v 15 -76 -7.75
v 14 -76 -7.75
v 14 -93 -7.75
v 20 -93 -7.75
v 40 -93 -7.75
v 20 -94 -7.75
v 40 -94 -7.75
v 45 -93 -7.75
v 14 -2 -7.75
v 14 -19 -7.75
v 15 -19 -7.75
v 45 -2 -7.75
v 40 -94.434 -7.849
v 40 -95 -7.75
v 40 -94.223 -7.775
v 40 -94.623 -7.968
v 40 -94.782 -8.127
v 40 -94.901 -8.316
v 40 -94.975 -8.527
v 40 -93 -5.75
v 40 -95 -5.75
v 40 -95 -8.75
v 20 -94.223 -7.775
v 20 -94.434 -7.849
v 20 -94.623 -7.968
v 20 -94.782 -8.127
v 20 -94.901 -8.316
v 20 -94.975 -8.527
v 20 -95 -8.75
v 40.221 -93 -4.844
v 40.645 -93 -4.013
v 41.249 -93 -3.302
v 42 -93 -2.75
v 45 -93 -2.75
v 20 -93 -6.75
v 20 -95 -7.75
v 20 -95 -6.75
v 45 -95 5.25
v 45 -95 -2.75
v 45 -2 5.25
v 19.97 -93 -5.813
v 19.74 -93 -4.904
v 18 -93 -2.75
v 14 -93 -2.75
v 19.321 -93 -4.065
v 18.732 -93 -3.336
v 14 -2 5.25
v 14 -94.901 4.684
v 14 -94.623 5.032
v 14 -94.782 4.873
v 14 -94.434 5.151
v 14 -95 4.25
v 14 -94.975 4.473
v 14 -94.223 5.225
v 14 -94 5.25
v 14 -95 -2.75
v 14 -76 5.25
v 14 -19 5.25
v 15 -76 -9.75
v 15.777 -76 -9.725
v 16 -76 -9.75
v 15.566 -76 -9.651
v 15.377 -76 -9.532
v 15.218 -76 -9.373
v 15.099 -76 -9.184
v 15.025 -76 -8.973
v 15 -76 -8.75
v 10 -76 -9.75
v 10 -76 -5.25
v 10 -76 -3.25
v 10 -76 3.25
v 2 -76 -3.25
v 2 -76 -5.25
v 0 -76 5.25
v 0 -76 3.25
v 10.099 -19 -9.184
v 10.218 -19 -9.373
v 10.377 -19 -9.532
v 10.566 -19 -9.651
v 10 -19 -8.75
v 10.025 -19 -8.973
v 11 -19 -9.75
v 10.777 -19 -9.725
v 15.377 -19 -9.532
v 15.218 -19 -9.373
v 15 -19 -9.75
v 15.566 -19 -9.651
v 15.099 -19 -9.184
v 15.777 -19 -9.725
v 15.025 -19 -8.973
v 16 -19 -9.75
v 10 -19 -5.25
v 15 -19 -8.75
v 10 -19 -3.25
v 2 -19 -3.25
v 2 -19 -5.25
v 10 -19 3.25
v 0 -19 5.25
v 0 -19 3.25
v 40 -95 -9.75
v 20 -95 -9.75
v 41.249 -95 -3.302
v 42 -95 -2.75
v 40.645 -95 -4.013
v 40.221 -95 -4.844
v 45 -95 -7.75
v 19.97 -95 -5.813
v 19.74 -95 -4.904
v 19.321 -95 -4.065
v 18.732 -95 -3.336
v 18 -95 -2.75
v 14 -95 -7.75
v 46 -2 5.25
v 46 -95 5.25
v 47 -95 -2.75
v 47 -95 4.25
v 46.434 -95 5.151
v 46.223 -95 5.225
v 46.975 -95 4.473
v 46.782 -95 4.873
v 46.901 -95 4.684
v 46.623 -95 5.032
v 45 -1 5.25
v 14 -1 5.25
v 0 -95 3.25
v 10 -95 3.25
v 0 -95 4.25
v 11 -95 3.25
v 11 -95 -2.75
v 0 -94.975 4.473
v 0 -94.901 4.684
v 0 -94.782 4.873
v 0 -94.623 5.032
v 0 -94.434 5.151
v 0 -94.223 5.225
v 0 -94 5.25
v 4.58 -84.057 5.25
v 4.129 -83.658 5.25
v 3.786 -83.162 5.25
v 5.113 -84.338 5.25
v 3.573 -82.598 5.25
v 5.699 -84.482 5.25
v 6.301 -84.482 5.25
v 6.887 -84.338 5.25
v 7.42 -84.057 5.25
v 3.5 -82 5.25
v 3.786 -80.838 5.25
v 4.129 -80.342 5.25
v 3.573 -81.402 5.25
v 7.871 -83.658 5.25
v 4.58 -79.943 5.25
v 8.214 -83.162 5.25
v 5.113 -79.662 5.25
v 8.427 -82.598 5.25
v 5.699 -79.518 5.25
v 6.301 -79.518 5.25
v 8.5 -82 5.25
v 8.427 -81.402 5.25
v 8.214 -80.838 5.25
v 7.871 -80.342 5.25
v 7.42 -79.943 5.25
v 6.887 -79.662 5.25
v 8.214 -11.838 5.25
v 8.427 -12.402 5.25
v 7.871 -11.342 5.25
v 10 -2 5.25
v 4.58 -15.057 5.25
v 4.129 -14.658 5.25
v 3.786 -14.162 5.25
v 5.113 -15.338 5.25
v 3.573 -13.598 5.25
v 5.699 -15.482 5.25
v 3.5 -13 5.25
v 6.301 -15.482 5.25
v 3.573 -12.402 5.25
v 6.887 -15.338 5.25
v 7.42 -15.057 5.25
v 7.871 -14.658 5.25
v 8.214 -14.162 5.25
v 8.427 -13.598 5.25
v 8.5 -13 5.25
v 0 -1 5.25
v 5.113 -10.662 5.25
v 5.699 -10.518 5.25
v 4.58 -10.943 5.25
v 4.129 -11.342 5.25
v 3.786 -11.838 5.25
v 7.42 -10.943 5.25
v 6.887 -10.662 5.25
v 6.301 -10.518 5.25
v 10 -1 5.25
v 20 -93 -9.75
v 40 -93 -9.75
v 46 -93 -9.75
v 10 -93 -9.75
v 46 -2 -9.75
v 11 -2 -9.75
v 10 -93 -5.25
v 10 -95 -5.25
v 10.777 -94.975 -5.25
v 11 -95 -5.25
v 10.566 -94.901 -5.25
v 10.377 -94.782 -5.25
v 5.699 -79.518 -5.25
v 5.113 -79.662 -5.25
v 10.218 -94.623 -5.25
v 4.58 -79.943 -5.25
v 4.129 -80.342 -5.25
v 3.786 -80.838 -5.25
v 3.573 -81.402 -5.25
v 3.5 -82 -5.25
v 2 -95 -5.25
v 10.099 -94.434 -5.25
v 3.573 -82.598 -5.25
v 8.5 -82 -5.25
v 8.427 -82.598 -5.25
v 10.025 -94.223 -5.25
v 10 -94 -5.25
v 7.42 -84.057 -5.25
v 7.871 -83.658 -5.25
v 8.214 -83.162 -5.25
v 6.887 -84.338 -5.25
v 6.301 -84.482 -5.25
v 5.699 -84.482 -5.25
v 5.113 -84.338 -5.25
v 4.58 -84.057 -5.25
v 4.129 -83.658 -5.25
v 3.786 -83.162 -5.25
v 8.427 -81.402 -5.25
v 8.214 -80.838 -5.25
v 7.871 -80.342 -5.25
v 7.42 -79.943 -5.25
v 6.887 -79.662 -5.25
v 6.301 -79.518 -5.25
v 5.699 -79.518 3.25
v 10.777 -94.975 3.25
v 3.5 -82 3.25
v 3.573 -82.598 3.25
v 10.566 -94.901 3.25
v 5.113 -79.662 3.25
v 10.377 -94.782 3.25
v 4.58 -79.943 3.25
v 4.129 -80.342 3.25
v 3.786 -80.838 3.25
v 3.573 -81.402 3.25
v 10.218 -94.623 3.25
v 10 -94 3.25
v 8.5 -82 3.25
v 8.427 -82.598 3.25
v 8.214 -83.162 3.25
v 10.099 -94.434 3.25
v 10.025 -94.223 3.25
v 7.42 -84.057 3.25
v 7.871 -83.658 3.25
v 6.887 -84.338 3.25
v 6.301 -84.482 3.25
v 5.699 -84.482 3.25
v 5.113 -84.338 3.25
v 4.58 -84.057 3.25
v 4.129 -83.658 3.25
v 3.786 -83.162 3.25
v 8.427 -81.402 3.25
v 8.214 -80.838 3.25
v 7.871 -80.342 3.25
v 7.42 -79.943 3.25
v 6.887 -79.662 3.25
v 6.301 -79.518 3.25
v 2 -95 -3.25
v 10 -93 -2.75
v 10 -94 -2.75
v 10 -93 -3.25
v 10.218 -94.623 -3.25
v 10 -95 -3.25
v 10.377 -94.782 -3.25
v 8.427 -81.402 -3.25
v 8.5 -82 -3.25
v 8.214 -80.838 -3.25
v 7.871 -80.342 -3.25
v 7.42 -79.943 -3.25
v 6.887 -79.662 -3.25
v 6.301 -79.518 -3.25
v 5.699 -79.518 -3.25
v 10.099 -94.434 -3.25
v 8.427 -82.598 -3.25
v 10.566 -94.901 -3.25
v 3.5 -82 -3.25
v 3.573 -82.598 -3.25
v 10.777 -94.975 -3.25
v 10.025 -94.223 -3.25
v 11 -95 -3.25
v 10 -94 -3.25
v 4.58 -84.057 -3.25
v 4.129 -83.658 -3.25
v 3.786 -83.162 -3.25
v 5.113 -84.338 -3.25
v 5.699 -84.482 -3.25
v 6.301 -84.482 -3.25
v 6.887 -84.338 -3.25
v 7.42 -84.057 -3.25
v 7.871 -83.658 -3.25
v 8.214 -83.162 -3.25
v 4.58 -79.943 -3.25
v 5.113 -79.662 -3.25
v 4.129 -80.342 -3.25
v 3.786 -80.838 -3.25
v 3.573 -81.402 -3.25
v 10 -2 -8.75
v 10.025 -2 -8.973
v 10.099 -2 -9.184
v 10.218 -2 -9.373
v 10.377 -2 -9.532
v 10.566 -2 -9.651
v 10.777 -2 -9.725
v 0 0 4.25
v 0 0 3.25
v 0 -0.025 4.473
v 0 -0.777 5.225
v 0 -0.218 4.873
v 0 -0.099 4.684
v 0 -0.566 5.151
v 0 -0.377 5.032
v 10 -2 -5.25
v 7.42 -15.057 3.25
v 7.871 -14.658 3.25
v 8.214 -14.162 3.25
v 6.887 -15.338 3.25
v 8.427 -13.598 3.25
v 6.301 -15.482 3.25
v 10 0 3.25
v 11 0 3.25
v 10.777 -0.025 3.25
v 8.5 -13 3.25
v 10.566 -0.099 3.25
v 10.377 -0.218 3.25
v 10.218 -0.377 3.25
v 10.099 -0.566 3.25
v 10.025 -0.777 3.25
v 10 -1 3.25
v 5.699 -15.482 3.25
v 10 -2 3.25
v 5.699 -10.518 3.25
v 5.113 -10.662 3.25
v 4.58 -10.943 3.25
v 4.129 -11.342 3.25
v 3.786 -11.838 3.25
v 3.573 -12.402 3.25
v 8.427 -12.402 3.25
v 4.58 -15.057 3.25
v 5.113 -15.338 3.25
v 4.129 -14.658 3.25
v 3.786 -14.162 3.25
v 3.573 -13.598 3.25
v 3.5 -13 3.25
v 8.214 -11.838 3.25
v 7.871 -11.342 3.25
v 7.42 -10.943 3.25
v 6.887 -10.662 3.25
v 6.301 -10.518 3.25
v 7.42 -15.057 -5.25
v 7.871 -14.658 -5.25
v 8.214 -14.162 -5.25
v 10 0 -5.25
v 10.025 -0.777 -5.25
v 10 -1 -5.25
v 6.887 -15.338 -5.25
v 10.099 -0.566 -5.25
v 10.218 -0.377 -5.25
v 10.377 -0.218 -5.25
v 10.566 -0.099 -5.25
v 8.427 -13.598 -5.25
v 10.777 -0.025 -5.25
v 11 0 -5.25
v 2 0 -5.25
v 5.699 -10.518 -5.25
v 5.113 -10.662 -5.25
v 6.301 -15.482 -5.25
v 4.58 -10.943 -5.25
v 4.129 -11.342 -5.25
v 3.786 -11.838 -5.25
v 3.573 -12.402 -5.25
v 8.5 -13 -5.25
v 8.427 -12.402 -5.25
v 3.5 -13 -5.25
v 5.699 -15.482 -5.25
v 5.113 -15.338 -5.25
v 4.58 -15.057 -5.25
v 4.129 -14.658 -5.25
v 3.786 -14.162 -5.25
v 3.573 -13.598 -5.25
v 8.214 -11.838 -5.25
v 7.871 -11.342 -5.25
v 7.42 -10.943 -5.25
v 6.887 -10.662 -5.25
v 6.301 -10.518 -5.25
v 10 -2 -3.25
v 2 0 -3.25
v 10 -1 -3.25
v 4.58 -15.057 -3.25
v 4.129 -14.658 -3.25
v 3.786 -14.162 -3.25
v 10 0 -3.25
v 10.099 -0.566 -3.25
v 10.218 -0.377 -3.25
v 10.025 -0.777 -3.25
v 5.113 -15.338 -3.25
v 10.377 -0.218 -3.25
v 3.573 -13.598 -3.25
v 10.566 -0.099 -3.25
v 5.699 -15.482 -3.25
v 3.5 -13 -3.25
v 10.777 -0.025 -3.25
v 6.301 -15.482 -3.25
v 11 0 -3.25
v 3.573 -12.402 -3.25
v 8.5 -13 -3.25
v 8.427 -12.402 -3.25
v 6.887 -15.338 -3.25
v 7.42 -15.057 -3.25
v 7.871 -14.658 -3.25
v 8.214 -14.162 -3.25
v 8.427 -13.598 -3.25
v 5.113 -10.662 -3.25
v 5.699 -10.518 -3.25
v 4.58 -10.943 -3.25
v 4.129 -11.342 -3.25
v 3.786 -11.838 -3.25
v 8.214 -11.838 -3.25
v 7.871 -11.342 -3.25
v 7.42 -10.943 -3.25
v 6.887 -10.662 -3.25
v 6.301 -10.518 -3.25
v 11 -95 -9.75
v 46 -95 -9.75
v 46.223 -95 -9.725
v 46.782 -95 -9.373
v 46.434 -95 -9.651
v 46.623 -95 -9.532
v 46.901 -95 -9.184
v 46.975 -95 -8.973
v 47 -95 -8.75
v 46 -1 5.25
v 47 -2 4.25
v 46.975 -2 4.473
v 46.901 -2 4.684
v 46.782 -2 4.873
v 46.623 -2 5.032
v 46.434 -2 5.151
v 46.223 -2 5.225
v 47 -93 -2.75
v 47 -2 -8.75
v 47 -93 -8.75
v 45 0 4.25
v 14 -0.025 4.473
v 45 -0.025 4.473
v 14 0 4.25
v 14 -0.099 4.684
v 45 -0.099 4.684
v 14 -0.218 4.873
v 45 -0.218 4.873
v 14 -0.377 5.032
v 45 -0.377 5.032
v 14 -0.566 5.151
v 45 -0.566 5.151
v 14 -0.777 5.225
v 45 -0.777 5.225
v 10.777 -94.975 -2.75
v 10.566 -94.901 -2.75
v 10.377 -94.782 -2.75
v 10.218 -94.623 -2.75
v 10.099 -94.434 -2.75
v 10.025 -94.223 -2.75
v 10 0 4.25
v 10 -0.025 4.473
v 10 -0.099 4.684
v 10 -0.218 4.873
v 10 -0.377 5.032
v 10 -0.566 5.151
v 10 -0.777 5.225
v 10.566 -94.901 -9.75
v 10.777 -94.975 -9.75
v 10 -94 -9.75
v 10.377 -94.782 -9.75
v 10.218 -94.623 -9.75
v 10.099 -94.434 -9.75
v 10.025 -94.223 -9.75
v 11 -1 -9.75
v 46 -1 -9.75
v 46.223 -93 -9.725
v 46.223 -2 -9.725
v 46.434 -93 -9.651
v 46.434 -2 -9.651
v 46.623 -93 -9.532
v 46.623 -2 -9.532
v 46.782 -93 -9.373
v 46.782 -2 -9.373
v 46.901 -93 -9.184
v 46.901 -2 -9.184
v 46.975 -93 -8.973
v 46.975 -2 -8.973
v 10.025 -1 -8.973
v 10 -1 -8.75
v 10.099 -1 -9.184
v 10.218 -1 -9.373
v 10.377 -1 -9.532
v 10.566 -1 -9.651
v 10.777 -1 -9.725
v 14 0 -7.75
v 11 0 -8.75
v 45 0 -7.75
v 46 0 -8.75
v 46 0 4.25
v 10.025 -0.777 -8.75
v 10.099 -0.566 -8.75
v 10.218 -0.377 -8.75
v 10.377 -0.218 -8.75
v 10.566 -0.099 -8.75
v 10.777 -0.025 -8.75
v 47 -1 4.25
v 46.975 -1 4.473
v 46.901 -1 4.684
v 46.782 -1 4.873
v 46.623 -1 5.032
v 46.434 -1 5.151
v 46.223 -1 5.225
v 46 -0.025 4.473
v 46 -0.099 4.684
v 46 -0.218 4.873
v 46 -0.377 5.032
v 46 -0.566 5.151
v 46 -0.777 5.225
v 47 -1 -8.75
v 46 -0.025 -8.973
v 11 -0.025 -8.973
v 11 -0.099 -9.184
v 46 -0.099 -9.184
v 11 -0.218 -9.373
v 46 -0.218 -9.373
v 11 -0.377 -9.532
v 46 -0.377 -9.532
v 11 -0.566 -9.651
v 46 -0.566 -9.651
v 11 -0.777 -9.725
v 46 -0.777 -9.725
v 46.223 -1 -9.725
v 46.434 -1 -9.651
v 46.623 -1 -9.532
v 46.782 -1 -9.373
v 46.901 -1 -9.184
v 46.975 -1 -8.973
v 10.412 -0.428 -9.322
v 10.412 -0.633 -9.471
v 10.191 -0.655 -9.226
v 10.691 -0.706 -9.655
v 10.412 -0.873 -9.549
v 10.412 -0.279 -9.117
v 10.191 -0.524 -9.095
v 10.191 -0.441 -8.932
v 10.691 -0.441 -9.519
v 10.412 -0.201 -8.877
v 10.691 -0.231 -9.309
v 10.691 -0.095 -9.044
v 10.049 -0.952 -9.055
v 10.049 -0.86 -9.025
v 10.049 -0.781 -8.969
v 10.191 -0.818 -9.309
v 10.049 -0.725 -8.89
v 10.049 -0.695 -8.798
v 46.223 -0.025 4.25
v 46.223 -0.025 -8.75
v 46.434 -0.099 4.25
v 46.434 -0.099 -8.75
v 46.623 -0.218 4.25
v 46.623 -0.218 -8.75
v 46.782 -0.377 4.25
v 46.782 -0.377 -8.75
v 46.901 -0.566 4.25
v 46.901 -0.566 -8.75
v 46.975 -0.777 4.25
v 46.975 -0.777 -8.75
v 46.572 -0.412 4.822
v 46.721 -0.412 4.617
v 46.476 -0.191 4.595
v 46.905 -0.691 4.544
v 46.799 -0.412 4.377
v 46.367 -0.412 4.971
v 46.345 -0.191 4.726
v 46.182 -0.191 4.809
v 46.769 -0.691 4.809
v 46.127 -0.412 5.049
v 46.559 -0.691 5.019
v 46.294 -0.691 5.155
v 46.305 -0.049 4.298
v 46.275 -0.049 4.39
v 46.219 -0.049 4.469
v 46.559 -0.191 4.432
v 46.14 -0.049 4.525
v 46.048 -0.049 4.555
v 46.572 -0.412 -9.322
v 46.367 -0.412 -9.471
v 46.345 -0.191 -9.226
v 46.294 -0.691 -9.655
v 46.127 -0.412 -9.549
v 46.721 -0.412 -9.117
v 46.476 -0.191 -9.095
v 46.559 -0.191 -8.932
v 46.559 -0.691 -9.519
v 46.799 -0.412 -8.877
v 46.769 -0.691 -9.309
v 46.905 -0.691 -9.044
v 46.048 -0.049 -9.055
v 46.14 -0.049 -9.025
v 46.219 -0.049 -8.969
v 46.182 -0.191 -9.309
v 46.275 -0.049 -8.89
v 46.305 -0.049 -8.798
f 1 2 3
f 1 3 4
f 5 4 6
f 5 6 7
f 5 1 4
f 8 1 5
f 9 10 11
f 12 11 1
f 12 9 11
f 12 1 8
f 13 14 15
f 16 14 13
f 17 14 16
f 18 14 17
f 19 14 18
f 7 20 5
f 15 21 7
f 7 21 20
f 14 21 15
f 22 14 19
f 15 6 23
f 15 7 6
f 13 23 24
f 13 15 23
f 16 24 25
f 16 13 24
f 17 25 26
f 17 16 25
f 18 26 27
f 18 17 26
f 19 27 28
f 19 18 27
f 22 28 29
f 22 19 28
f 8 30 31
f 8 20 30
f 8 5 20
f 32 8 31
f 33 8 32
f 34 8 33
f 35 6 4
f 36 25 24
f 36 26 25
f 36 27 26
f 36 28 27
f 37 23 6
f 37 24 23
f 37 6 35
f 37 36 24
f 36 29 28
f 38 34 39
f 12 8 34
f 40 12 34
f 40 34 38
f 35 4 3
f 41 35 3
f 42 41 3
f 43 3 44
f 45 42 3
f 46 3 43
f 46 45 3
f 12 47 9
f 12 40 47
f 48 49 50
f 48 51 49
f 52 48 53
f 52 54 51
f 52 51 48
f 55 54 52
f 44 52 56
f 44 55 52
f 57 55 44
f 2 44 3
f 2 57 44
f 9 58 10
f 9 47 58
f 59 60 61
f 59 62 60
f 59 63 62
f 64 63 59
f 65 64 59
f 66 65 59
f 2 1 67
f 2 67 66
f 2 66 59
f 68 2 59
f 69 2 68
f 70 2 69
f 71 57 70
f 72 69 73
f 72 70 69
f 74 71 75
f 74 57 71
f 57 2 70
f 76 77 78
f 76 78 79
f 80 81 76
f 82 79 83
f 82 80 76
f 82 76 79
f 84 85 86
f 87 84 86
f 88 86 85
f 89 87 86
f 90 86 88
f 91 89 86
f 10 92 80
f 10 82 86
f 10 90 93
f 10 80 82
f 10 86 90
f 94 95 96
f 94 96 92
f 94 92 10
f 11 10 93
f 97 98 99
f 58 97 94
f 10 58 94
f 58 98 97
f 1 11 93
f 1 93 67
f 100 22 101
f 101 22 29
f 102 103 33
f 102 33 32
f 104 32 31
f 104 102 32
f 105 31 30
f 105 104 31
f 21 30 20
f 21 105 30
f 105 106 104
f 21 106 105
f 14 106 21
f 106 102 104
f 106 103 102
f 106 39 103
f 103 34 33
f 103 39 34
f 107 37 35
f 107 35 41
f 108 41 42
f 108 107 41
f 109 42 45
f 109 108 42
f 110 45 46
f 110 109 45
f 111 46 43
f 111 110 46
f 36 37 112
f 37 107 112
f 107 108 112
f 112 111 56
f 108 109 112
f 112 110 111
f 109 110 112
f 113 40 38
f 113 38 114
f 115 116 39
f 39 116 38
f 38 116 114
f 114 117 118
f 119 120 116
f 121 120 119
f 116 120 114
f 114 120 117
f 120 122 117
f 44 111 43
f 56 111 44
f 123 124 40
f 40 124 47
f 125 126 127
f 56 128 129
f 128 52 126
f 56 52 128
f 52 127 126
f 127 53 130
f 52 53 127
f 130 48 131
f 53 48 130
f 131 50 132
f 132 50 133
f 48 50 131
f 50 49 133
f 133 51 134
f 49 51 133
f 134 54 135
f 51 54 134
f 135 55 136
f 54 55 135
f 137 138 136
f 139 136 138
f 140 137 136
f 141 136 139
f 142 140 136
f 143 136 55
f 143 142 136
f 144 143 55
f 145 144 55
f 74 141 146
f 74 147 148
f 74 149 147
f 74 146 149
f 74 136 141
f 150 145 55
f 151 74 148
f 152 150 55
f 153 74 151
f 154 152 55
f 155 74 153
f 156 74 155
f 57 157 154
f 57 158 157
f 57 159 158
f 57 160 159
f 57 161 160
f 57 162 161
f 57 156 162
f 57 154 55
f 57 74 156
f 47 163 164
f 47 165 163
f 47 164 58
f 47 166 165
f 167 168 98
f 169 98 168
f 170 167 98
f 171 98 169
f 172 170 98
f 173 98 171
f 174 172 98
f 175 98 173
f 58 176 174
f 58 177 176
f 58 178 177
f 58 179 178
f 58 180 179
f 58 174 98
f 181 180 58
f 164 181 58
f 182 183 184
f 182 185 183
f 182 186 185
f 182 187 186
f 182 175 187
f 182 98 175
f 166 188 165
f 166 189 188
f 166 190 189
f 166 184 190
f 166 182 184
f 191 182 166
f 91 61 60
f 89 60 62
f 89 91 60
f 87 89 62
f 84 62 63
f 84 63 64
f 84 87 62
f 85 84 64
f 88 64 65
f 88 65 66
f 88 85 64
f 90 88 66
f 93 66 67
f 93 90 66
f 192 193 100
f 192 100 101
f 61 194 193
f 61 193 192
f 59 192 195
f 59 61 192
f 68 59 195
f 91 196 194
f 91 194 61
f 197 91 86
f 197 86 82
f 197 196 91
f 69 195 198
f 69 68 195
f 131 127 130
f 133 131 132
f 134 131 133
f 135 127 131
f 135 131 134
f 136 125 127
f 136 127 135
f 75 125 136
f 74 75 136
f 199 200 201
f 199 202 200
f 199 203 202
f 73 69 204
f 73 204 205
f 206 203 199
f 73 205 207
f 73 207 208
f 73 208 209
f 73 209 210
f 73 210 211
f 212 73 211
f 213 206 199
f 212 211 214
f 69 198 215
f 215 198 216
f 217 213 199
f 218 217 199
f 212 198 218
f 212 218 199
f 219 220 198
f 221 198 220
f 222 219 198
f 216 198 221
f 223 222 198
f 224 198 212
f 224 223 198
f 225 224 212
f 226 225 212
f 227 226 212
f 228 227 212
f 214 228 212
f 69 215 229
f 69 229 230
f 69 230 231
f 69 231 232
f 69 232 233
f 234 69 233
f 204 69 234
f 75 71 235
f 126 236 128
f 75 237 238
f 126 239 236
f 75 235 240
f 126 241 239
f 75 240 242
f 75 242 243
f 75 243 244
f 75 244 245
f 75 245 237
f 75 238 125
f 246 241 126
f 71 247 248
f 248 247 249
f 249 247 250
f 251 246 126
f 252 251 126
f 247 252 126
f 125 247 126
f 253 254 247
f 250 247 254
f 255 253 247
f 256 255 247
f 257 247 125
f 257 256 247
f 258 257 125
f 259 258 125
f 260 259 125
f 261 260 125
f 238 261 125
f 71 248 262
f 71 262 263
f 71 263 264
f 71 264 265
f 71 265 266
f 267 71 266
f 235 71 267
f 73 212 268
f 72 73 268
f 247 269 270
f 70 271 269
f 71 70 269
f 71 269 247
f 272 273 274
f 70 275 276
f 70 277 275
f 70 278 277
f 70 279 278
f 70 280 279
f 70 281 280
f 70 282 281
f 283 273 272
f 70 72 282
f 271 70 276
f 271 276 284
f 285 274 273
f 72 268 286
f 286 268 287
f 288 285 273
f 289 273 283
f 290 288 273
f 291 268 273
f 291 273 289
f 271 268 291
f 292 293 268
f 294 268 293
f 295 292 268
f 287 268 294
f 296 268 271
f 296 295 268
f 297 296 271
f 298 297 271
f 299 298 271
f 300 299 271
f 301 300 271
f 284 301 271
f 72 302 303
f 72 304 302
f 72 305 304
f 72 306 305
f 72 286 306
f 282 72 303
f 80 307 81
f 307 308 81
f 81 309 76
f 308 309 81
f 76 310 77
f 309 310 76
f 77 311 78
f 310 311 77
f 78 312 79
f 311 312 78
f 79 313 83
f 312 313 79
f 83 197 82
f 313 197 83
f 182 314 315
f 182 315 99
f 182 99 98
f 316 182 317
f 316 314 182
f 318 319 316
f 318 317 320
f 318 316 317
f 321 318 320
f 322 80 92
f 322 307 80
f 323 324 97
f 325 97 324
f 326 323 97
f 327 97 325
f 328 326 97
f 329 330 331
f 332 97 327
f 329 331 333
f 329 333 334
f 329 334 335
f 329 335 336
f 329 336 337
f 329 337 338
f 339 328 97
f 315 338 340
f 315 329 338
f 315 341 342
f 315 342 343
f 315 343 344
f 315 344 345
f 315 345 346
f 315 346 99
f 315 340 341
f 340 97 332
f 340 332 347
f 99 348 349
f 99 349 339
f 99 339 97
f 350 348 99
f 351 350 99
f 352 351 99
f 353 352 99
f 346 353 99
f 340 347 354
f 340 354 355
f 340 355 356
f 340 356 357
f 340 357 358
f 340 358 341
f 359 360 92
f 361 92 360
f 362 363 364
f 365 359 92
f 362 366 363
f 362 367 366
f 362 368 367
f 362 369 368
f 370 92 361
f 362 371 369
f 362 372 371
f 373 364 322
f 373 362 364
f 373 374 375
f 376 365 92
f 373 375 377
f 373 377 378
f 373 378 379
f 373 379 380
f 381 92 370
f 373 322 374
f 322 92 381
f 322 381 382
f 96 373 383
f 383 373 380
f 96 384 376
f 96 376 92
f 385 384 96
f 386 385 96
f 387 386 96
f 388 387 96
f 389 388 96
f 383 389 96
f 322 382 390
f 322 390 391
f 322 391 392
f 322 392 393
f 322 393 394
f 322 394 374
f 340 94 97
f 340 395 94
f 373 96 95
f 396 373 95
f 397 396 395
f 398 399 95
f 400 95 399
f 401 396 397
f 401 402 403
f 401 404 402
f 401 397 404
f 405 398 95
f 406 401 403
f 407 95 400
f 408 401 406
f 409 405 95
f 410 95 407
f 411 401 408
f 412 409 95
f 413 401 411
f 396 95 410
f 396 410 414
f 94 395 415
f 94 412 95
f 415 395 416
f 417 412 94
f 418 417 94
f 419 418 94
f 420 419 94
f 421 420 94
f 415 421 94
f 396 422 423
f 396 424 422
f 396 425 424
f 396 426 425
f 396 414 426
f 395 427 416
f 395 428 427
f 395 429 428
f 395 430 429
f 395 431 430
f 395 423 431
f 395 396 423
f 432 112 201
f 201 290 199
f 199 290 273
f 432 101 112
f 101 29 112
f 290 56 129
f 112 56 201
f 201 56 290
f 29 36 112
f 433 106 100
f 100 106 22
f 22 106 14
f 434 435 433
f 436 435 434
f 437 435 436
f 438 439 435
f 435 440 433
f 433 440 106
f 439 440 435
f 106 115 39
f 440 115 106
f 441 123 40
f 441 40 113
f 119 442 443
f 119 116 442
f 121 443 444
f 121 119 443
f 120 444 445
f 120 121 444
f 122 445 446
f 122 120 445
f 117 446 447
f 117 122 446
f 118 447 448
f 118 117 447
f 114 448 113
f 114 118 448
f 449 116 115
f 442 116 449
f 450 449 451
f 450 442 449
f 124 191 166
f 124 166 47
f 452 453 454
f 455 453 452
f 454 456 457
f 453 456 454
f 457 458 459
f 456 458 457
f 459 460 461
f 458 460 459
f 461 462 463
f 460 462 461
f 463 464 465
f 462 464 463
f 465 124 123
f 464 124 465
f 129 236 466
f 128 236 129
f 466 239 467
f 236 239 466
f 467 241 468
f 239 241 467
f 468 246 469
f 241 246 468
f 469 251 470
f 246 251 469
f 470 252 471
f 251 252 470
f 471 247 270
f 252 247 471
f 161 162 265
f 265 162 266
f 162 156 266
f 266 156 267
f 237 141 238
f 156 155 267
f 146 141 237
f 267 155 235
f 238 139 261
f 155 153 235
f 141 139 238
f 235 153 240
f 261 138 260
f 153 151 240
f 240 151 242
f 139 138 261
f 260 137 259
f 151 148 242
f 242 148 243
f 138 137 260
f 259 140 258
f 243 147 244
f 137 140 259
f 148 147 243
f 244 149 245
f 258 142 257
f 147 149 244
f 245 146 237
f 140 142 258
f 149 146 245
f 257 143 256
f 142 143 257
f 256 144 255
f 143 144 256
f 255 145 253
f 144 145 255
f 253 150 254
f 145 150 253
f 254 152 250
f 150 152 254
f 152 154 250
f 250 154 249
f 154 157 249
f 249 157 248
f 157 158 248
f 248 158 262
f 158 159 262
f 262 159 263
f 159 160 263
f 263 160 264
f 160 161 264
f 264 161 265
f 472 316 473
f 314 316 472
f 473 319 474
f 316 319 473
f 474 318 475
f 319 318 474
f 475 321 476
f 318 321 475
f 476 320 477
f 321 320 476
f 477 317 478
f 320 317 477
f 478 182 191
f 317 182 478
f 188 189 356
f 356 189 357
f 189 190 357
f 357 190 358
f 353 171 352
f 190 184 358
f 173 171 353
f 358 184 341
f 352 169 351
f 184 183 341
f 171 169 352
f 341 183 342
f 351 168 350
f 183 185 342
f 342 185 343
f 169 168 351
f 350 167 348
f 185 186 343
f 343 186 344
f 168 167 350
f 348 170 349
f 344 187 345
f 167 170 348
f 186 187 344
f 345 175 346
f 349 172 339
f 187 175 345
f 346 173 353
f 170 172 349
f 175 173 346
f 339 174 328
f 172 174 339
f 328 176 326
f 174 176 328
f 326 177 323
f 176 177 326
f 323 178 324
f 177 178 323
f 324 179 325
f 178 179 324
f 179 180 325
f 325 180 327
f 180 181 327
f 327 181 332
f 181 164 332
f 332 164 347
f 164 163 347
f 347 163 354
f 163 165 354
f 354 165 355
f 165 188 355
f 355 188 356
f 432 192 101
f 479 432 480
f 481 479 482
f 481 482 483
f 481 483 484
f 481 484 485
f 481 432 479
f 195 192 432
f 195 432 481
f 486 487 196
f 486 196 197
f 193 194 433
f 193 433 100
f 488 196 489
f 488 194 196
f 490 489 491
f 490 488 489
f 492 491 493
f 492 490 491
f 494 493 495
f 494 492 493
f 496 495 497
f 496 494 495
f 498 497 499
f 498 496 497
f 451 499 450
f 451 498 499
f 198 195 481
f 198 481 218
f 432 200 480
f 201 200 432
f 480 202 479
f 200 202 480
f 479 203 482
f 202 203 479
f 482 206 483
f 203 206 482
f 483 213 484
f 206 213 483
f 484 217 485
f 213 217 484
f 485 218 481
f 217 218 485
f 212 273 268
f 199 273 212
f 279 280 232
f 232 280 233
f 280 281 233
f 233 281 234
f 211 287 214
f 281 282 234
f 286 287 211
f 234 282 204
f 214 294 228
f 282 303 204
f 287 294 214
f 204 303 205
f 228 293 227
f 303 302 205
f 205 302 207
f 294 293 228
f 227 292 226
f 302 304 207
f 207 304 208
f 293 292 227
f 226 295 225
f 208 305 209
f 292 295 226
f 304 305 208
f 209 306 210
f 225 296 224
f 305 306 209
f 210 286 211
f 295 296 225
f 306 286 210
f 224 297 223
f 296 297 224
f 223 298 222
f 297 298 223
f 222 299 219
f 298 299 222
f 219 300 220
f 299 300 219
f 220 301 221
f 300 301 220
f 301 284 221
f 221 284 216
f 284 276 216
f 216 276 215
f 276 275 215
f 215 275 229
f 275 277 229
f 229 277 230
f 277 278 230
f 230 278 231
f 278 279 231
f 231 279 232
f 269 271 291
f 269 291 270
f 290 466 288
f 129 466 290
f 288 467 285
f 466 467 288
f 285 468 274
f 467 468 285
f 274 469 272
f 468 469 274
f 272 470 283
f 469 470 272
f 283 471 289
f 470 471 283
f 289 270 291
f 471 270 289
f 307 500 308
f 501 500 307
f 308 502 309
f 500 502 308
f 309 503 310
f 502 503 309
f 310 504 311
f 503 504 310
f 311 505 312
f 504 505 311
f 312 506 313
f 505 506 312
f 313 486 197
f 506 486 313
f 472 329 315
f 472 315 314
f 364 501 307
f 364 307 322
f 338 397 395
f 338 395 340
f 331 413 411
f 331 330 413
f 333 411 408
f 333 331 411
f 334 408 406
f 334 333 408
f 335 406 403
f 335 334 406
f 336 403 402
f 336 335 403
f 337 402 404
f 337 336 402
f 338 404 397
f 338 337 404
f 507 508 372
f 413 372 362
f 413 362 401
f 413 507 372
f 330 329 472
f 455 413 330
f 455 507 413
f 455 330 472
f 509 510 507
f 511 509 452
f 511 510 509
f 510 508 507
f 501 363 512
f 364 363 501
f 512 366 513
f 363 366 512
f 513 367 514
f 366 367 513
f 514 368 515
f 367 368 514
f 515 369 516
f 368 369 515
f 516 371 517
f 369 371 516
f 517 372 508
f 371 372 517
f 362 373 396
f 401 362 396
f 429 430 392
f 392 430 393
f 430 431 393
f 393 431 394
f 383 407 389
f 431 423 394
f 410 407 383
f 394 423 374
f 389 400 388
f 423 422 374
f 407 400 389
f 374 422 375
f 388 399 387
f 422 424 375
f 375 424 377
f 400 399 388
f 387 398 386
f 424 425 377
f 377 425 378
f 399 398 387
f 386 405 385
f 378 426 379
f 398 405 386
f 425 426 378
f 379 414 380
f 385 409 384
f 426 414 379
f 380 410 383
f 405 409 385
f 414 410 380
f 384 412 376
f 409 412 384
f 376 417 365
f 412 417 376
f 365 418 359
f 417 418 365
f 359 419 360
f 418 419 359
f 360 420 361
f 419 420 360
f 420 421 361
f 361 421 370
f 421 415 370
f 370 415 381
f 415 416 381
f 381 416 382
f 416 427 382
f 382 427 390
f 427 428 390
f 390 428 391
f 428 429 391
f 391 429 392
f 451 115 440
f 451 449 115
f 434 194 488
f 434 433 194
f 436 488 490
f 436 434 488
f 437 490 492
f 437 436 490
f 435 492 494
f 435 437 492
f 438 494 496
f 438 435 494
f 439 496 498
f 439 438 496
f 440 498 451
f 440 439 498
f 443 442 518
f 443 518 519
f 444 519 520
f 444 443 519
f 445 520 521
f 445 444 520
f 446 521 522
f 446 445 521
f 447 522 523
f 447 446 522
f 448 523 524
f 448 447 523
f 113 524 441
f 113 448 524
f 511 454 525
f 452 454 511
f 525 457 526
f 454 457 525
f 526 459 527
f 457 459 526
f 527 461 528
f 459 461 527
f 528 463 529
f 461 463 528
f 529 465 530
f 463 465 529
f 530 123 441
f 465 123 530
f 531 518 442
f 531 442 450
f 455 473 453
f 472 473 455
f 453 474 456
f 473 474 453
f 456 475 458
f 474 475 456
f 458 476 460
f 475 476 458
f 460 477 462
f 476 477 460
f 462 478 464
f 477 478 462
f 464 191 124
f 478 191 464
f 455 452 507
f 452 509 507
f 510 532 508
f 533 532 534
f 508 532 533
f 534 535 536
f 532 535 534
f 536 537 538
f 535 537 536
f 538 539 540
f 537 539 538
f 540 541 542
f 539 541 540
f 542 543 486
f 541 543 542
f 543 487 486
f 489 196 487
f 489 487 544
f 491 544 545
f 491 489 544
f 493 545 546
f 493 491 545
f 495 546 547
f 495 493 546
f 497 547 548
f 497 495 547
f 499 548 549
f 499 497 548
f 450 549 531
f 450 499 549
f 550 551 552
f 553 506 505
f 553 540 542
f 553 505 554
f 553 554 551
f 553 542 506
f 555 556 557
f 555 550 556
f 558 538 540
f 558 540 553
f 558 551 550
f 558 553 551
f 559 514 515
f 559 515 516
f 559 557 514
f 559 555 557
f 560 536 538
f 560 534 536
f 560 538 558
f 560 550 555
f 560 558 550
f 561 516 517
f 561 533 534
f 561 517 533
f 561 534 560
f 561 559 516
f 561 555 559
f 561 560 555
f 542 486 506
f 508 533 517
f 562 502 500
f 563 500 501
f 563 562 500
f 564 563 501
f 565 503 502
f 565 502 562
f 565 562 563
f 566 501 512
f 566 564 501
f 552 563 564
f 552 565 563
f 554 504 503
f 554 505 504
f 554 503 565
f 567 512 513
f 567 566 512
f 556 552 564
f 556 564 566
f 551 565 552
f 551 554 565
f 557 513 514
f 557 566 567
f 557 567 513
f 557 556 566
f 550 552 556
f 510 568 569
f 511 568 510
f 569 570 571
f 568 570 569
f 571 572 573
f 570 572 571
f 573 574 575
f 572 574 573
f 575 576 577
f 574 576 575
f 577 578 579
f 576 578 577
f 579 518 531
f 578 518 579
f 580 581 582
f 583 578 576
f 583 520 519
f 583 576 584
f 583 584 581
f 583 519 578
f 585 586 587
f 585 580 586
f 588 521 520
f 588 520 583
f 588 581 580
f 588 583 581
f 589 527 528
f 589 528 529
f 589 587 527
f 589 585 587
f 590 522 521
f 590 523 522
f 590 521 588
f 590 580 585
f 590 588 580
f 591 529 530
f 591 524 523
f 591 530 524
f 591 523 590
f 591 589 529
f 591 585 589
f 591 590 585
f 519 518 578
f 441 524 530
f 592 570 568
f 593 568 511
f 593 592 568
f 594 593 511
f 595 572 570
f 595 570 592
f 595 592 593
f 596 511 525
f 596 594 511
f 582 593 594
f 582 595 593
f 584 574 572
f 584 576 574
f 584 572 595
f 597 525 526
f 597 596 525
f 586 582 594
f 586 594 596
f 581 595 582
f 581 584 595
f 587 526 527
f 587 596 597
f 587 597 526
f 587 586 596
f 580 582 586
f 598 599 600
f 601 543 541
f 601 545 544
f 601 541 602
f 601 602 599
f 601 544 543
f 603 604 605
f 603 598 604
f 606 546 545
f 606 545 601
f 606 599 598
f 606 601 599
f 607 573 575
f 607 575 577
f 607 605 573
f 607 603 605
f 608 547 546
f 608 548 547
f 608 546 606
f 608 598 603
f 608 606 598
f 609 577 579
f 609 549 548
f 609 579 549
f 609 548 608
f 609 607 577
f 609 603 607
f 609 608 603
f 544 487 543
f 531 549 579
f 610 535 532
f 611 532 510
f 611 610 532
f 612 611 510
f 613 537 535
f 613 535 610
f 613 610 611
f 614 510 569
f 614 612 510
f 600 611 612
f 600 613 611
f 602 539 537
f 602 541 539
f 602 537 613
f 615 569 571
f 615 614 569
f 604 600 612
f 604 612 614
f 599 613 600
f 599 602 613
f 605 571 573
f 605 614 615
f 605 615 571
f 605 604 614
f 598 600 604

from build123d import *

# Parameters (mm, degrees)
PAD_DEPTH       = 95
SKETCH001_W     = 37
SKETCH001_H     = 15
PAD001_DEPTH    = 2
PAD002_DEPTH    = 2
PAD003_DEPTH    = 2
SKETCH004_W     = 15
SKETCH004_H     = 57
POCKET_DEPTH    = 15.001
SKETCH005_R     = 2.5
POCKET001_DEPTH = 15.001
FILLET_R        = 1
FILLET001_R     = 1
FILLET002_R     = 1
FILLET003_R     = 1
FILLET004_R     = 1
FILLET005_R     = 1
FILLET006_R     = 1
FILLET007_R     = 1
FILLET008_R     = 1
FILLET009_R     = 1


with BuildPart() as part:
    # Sketch → Pad (new body)
    with BuildSketch(Plane.XZ):
        Polygon((2, -3.25), (10, -3.25), (10, 3.25), (0, 3.25), (0, 5.25), (14, 5.25), (14, -7.75), (45, -7.75), (45, 5.25), (47, 5.25), (47, -9.75), (10, -9.75), (10, -5.25), (2, -5.25), align=None)
    extrude(amount=PAD_DEPTH)

    # Sketch001 (on Face15 of Pad) → Pad001 (join)
    with BuildSketch(Plane(origin=(0, 0, 0), x_dir=(1, 0, 0), z_dir=(0, 1, 0))):
        with Locations((28.5, 2.25)):
            Rectangle(SKETCH001_W, SKETCH001_H)
    extrude(amount=-PAD001_DEPTH)

    # Sketch002 (on Face6 of Pad001) → Pad002 (join)
    with BuildSketch(Plane.XZ.offset(95)):
        with BuildLine():
            Line((10, -9.75), (10, -2.75))
            Line((10, -2.75), (18, -2.75))
            ThreePointArc((20, -6.75), (19.553394, -4.473303), (18, -2.75))
            Line((20, -9.75), (20, -6.75))
            Line((10, -9.75), (20, -9.75))
        make_face()
    extrude(amount=-PAD002_DEPTH)

    # Sketch003 (on Face26 of Pad002) → Pad003 (join)
    with BuildSketch(Plane.XZ.offset(95)):
        with BuildLine():
            Line((47, -9.75), (40, -9.75))
            Line((40, -9.75), (40, -5.75))
            ThreePointArc((42, -2.75), (40.644801, -4.013201), (40, -5.75))
            Line((47, -2.75), (42, -2.75))
            Line((47, -9.75), (47, -2.75))
        make_face()
    extrude(amount=-PAD003_DEPTH)

    # Sketch004 (on Face24 of Pad003) → Pocket (cut, through all)
    with BuildSketch(Plane(origin=(0, 0, 5.25), x_dir=(-1, 0, 0), z_dir=(0, 0, 1))):
        with Locations((-7.5, 47.5)):
            Rectangle(SKETCH004_W, SKETCH004_H)
    extrude(amount=-POCKET_DEPTH, mode=Mode.SUBTRACT)

    # Sketch005 (on Face10 of Pocket) → Pocket001 (cut, through all)
    with BuildSketch(Plane(origin=(0, 0, 5.25), x_dir=(-1, 0, 0), z_dir=(0, 0, 1))):
        with Locations((-6, 82)):
            Circle(SKETCH005_R)
        with Locations((-6, 13)):
            Circle(SKETCH005_R)
    extrude(amount=-POCKET001_DEPTH, mode=Mode.SUBTRACT)

    # Fillet
    fillet_edges = [part.edges().sort_by_distance(p)[0] for p in [
        (47, -47.5, -9.75),
    ]]
    fillet(fillet_edges, radius=FILLET_R)

    # Fillet001
    fillet001_edges = [part.edges().sort_by_distance(p)[0] for p in [
        (47, -48.5, 5.25),
    ]]
    fillet(fillet001_edges, radius=FILLET001_R)

    # Fillet002
    fillet002_edges = [part.edges().sort_by_distance(p)[0] for p in [
        (29.5, 0, 5.25),
    ]]
    fillet(fillet002_edges, radius=FILLET002_R)

    # Fillet003
    fillet003_edges = [part.edges().sort_by_distance(p)[0] for p in [
        (10, 0, 0),
    ]]
    fillet(fillet003_edges, radius=FILLET003_R)

    # Fillet004
    fillet004_edges = [part.edges().sort_by_distance(p)[0] for p in [
        (10, 0, -7),
    ]]
    fillet(fillet004_edges, radius=FILLET004_R)

    # Fillet005
    fillet005_edges = [part.edges().sort_by_distance(p)[0] for p in [
        (10, -95, 0.25),
    ]]
    fillet(fillet005_edges, radius=FILLET005_R)

    # Fillet006
    fillet006_edges = [part.edges().sort_by_distance(p)[0] for p in [
        (10, -95, -7.5),
    ]]
    fillet(fillet006_edges, radius=FILLET006_R)

    # Fillet007
    fillet007_edges = [part.edges().sort_by_distance(p)[0] for p in [
        (7, -95, 5.25),
    ]]
    fillet(fillet007_edges, radius=FILLET007_R)

    # Fillet008
    fillet008_edges = [part.edges().sort_by_distance(p)[0] for p in [
        (15, -47.5, -9.75),
    ]]
    fillet(fillet008_edges, radius=FILLET008_R)

    # Fillet009
    fillet009_edges = [part.edges().sort_by_distance(p)[0] for p in [
        (30, -95, -7.75),
    ]]
    fillet(fillet009_edges, radius=FILLET009_R)


solid = part.part
